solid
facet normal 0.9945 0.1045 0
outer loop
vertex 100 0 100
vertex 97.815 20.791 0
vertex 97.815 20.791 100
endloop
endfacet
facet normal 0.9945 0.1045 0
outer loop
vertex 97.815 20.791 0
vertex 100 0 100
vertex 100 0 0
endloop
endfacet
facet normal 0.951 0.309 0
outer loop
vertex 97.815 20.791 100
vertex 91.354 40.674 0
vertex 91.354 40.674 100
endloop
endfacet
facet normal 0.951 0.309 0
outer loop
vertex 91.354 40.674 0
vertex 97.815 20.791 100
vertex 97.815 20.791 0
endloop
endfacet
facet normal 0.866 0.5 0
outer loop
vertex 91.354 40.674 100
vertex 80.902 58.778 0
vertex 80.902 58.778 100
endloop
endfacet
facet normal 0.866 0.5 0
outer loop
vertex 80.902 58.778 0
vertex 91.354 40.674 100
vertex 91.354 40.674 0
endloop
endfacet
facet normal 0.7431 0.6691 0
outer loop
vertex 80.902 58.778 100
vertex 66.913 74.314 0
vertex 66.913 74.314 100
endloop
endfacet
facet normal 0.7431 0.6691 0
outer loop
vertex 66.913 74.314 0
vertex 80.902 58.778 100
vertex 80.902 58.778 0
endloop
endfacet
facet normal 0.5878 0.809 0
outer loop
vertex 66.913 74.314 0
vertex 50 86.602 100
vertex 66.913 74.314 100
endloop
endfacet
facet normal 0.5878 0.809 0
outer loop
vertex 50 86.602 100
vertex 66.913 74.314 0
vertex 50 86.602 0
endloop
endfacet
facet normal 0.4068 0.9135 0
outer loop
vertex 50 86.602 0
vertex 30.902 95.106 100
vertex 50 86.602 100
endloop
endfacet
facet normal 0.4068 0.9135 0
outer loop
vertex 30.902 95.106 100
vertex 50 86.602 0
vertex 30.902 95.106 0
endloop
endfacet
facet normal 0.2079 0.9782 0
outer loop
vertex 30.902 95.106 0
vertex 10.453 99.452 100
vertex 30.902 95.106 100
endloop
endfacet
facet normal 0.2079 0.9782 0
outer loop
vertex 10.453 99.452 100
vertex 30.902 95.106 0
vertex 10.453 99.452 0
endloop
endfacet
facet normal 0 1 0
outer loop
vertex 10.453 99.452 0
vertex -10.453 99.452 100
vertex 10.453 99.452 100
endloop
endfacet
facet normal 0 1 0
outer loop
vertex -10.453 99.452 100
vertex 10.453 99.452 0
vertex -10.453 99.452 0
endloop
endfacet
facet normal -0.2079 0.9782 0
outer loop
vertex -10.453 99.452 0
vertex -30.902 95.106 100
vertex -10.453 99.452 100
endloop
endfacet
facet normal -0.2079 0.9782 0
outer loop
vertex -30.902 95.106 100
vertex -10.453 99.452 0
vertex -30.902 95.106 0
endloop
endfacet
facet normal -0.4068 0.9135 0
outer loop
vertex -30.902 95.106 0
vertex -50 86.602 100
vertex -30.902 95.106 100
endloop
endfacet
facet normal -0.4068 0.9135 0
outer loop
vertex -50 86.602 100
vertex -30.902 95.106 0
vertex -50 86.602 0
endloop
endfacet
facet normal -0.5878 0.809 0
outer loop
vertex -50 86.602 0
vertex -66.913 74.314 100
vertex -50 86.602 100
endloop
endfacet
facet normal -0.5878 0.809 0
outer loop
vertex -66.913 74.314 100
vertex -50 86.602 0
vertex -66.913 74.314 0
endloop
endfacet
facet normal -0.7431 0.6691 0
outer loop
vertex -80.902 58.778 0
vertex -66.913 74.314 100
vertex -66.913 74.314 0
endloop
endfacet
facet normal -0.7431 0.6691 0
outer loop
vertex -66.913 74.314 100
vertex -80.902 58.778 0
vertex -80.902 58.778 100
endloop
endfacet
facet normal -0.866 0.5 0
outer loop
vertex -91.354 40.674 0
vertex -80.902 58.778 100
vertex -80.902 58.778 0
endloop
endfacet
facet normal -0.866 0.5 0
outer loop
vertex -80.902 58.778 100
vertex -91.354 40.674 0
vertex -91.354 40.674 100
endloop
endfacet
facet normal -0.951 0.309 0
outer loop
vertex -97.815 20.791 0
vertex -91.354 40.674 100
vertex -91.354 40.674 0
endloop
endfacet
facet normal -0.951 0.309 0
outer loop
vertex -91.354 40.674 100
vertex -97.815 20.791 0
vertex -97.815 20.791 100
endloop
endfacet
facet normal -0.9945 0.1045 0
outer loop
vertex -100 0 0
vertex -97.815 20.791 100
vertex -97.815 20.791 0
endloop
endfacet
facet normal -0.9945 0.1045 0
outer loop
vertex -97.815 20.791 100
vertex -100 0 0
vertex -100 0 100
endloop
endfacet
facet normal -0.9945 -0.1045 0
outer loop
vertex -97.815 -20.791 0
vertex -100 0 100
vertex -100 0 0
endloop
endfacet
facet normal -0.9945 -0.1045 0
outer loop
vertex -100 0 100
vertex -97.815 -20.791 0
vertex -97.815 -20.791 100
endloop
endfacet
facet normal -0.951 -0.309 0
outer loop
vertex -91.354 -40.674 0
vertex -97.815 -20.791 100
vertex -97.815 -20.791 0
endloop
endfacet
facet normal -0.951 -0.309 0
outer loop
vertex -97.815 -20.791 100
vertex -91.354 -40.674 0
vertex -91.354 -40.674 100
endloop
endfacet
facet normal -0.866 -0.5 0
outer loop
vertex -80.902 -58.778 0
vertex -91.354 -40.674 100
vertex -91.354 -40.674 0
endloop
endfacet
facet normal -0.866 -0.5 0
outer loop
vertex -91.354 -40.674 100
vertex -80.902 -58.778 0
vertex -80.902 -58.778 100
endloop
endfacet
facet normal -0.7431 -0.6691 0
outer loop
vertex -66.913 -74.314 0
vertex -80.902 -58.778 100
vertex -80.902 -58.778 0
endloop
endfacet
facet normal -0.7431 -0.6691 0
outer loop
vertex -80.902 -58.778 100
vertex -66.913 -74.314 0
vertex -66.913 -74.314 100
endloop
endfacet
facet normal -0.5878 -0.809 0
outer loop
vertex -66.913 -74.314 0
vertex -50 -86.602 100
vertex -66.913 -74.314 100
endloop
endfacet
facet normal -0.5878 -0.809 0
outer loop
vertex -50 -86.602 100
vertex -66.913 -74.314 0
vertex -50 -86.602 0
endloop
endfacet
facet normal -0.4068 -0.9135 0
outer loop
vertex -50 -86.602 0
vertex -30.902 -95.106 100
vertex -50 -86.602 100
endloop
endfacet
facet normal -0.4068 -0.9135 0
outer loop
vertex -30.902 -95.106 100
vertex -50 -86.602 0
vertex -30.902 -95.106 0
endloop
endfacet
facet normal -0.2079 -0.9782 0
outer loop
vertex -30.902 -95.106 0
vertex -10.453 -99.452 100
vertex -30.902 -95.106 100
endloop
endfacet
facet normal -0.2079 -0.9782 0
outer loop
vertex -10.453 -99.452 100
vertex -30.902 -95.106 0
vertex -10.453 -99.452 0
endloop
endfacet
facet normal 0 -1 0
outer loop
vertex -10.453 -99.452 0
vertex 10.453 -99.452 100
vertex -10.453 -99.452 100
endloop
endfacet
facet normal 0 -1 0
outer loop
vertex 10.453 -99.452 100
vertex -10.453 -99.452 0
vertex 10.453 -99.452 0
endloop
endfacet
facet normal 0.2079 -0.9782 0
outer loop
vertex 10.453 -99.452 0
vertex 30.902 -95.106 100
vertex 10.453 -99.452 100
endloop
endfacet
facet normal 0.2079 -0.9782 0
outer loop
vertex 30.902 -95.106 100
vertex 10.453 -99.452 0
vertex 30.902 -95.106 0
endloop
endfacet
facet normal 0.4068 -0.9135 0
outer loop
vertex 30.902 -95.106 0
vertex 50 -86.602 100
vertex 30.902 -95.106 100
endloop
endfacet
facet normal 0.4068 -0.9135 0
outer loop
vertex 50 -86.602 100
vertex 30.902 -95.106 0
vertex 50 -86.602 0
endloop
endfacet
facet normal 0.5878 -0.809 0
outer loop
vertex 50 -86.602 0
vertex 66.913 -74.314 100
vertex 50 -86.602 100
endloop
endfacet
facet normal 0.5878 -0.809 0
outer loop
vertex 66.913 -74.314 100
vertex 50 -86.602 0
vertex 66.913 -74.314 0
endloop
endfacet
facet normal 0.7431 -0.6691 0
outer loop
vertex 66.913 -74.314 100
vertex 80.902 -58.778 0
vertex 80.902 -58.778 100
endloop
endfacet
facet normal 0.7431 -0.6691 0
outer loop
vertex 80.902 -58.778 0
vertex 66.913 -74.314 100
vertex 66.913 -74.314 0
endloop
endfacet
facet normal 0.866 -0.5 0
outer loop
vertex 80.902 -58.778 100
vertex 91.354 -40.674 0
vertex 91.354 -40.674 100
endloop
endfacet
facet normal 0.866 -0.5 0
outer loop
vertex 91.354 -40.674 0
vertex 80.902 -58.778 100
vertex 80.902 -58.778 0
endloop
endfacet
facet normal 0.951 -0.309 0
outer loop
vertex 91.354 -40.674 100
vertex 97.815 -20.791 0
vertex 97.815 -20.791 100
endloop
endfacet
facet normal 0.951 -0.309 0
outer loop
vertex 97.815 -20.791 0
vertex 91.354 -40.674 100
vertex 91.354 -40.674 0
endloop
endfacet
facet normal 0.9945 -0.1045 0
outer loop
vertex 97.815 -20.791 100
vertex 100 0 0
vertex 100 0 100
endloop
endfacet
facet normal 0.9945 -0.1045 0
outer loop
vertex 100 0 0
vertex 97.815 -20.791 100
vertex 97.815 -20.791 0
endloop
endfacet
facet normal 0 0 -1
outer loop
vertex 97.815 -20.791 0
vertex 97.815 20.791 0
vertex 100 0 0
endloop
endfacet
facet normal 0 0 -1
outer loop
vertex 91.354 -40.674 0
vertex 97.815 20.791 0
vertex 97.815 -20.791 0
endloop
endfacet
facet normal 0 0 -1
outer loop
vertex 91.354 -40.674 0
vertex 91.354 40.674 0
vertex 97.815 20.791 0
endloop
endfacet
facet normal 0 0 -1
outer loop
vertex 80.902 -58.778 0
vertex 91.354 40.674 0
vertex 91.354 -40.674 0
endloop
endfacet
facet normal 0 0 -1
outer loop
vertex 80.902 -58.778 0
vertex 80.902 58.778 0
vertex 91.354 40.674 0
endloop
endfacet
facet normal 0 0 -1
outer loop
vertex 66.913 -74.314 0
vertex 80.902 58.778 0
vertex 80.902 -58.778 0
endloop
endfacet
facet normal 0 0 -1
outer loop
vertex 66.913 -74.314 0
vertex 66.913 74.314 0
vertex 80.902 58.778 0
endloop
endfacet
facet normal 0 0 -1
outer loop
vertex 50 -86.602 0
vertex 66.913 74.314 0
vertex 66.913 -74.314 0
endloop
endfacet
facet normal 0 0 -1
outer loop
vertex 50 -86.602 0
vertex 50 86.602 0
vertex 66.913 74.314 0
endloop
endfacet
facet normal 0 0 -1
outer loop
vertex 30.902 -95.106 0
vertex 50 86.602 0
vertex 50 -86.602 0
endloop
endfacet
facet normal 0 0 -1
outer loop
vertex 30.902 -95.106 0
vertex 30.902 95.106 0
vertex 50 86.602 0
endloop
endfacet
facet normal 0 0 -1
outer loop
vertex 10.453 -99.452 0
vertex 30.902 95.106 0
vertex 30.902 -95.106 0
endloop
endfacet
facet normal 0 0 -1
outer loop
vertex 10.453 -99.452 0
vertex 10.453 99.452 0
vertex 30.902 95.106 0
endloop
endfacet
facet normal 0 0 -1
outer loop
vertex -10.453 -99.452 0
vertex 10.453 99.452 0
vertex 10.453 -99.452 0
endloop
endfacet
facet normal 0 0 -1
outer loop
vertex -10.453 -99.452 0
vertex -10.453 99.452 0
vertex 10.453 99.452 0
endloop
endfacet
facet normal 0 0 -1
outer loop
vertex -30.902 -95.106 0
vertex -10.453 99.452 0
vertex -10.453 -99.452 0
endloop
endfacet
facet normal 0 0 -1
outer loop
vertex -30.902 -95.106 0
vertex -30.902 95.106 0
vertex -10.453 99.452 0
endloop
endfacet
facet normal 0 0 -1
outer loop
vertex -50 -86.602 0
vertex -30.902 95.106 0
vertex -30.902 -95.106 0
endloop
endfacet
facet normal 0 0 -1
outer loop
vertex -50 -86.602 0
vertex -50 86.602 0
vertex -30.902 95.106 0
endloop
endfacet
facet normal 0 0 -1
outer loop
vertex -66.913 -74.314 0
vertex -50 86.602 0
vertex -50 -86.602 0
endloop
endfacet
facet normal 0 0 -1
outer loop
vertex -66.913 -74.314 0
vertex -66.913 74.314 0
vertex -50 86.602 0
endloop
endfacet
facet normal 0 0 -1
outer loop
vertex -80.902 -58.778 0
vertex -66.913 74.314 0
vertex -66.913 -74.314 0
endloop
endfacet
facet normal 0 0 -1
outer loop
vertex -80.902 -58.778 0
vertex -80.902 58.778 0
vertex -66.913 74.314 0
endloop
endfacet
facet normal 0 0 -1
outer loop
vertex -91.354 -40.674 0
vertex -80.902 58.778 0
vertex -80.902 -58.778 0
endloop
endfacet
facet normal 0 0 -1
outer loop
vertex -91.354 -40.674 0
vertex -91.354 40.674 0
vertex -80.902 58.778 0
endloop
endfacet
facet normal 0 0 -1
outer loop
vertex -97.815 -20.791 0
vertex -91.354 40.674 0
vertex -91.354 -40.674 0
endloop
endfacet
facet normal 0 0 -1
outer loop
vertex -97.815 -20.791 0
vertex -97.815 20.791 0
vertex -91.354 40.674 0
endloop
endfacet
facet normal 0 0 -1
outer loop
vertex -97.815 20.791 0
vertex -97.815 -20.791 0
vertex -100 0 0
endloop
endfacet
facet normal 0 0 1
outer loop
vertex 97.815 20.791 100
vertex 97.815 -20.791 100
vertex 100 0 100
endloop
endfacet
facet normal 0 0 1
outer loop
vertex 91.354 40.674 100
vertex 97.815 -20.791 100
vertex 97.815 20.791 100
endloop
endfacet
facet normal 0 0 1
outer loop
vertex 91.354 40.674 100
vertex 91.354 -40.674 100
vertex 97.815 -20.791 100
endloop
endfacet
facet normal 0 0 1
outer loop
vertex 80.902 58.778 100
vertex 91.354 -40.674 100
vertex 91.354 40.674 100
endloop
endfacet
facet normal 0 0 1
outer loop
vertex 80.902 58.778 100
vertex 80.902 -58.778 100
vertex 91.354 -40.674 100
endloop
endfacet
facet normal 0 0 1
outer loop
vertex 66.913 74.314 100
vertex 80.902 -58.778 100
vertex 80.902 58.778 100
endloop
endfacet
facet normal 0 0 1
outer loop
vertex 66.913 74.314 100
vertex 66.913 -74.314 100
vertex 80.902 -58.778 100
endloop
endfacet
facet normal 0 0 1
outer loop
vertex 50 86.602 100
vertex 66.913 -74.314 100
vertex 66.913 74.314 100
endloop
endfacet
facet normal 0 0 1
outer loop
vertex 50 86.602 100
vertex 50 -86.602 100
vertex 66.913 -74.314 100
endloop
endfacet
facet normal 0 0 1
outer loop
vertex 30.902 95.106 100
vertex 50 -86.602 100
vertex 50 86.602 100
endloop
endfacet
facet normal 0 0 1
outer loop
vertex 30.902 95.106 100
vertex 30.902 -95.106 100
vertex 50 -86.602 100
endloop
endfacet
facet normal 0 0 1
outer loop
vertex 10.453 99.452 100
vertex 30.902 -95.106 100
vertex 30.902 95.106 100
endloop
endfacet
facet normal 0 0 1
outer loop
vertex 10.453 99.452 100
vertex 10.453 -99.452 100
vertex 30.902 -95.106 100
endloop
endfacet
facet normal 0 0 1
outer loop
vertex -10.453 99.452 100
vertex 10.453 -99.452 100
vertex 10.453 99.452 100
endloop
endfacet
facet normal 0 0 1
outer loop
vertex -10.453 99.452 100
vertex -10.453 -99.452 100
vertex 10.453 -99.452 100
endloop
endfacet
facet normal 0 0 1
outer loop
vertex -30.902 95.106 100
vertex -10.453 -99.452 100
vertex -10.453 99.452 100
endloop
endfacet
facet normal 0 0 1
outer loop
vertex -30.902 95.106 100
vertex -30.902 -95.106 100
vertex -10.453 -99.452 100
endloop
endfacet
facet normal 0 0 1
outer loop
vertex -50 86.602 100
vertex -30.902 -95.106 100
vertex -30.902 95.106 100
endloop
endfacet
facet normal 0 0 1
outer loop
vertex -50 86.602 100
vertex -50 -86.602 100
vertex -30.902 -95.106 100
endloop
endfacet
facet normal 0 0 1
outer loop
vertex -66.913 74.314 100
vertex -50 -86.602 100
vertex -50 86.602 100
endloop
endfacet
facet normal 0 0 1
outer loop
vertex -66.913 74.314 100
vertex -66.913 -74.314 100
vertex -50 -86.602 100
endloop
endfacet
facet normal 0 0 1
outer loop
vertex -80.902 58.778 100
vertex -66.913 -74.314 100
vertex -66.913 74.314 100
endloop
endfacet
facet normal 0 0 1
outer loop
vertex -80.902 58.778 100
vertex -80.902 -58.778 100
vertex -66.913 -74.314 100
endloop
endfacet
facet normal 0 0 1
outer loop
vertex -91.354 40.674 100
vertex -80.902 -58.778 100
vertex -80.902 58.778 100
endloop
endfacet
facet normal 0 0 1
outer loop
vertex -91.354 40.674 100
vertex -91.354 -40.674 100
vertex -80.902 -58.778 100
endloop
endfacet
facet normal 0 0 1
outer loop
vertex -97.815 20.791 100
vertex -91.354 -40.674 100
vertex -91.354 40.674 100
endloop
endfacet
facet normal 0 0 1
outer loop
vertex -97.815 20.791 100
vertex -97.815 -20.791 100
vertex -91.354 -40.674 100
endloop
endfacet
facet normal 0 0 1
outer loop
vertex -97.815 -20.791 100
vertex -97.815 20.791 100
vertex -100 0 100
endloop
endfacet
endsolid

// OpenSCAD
module Lidar(){
    color("#D02020")
    cylinder(h=100, d=200, center=false);
}

Lidar();
